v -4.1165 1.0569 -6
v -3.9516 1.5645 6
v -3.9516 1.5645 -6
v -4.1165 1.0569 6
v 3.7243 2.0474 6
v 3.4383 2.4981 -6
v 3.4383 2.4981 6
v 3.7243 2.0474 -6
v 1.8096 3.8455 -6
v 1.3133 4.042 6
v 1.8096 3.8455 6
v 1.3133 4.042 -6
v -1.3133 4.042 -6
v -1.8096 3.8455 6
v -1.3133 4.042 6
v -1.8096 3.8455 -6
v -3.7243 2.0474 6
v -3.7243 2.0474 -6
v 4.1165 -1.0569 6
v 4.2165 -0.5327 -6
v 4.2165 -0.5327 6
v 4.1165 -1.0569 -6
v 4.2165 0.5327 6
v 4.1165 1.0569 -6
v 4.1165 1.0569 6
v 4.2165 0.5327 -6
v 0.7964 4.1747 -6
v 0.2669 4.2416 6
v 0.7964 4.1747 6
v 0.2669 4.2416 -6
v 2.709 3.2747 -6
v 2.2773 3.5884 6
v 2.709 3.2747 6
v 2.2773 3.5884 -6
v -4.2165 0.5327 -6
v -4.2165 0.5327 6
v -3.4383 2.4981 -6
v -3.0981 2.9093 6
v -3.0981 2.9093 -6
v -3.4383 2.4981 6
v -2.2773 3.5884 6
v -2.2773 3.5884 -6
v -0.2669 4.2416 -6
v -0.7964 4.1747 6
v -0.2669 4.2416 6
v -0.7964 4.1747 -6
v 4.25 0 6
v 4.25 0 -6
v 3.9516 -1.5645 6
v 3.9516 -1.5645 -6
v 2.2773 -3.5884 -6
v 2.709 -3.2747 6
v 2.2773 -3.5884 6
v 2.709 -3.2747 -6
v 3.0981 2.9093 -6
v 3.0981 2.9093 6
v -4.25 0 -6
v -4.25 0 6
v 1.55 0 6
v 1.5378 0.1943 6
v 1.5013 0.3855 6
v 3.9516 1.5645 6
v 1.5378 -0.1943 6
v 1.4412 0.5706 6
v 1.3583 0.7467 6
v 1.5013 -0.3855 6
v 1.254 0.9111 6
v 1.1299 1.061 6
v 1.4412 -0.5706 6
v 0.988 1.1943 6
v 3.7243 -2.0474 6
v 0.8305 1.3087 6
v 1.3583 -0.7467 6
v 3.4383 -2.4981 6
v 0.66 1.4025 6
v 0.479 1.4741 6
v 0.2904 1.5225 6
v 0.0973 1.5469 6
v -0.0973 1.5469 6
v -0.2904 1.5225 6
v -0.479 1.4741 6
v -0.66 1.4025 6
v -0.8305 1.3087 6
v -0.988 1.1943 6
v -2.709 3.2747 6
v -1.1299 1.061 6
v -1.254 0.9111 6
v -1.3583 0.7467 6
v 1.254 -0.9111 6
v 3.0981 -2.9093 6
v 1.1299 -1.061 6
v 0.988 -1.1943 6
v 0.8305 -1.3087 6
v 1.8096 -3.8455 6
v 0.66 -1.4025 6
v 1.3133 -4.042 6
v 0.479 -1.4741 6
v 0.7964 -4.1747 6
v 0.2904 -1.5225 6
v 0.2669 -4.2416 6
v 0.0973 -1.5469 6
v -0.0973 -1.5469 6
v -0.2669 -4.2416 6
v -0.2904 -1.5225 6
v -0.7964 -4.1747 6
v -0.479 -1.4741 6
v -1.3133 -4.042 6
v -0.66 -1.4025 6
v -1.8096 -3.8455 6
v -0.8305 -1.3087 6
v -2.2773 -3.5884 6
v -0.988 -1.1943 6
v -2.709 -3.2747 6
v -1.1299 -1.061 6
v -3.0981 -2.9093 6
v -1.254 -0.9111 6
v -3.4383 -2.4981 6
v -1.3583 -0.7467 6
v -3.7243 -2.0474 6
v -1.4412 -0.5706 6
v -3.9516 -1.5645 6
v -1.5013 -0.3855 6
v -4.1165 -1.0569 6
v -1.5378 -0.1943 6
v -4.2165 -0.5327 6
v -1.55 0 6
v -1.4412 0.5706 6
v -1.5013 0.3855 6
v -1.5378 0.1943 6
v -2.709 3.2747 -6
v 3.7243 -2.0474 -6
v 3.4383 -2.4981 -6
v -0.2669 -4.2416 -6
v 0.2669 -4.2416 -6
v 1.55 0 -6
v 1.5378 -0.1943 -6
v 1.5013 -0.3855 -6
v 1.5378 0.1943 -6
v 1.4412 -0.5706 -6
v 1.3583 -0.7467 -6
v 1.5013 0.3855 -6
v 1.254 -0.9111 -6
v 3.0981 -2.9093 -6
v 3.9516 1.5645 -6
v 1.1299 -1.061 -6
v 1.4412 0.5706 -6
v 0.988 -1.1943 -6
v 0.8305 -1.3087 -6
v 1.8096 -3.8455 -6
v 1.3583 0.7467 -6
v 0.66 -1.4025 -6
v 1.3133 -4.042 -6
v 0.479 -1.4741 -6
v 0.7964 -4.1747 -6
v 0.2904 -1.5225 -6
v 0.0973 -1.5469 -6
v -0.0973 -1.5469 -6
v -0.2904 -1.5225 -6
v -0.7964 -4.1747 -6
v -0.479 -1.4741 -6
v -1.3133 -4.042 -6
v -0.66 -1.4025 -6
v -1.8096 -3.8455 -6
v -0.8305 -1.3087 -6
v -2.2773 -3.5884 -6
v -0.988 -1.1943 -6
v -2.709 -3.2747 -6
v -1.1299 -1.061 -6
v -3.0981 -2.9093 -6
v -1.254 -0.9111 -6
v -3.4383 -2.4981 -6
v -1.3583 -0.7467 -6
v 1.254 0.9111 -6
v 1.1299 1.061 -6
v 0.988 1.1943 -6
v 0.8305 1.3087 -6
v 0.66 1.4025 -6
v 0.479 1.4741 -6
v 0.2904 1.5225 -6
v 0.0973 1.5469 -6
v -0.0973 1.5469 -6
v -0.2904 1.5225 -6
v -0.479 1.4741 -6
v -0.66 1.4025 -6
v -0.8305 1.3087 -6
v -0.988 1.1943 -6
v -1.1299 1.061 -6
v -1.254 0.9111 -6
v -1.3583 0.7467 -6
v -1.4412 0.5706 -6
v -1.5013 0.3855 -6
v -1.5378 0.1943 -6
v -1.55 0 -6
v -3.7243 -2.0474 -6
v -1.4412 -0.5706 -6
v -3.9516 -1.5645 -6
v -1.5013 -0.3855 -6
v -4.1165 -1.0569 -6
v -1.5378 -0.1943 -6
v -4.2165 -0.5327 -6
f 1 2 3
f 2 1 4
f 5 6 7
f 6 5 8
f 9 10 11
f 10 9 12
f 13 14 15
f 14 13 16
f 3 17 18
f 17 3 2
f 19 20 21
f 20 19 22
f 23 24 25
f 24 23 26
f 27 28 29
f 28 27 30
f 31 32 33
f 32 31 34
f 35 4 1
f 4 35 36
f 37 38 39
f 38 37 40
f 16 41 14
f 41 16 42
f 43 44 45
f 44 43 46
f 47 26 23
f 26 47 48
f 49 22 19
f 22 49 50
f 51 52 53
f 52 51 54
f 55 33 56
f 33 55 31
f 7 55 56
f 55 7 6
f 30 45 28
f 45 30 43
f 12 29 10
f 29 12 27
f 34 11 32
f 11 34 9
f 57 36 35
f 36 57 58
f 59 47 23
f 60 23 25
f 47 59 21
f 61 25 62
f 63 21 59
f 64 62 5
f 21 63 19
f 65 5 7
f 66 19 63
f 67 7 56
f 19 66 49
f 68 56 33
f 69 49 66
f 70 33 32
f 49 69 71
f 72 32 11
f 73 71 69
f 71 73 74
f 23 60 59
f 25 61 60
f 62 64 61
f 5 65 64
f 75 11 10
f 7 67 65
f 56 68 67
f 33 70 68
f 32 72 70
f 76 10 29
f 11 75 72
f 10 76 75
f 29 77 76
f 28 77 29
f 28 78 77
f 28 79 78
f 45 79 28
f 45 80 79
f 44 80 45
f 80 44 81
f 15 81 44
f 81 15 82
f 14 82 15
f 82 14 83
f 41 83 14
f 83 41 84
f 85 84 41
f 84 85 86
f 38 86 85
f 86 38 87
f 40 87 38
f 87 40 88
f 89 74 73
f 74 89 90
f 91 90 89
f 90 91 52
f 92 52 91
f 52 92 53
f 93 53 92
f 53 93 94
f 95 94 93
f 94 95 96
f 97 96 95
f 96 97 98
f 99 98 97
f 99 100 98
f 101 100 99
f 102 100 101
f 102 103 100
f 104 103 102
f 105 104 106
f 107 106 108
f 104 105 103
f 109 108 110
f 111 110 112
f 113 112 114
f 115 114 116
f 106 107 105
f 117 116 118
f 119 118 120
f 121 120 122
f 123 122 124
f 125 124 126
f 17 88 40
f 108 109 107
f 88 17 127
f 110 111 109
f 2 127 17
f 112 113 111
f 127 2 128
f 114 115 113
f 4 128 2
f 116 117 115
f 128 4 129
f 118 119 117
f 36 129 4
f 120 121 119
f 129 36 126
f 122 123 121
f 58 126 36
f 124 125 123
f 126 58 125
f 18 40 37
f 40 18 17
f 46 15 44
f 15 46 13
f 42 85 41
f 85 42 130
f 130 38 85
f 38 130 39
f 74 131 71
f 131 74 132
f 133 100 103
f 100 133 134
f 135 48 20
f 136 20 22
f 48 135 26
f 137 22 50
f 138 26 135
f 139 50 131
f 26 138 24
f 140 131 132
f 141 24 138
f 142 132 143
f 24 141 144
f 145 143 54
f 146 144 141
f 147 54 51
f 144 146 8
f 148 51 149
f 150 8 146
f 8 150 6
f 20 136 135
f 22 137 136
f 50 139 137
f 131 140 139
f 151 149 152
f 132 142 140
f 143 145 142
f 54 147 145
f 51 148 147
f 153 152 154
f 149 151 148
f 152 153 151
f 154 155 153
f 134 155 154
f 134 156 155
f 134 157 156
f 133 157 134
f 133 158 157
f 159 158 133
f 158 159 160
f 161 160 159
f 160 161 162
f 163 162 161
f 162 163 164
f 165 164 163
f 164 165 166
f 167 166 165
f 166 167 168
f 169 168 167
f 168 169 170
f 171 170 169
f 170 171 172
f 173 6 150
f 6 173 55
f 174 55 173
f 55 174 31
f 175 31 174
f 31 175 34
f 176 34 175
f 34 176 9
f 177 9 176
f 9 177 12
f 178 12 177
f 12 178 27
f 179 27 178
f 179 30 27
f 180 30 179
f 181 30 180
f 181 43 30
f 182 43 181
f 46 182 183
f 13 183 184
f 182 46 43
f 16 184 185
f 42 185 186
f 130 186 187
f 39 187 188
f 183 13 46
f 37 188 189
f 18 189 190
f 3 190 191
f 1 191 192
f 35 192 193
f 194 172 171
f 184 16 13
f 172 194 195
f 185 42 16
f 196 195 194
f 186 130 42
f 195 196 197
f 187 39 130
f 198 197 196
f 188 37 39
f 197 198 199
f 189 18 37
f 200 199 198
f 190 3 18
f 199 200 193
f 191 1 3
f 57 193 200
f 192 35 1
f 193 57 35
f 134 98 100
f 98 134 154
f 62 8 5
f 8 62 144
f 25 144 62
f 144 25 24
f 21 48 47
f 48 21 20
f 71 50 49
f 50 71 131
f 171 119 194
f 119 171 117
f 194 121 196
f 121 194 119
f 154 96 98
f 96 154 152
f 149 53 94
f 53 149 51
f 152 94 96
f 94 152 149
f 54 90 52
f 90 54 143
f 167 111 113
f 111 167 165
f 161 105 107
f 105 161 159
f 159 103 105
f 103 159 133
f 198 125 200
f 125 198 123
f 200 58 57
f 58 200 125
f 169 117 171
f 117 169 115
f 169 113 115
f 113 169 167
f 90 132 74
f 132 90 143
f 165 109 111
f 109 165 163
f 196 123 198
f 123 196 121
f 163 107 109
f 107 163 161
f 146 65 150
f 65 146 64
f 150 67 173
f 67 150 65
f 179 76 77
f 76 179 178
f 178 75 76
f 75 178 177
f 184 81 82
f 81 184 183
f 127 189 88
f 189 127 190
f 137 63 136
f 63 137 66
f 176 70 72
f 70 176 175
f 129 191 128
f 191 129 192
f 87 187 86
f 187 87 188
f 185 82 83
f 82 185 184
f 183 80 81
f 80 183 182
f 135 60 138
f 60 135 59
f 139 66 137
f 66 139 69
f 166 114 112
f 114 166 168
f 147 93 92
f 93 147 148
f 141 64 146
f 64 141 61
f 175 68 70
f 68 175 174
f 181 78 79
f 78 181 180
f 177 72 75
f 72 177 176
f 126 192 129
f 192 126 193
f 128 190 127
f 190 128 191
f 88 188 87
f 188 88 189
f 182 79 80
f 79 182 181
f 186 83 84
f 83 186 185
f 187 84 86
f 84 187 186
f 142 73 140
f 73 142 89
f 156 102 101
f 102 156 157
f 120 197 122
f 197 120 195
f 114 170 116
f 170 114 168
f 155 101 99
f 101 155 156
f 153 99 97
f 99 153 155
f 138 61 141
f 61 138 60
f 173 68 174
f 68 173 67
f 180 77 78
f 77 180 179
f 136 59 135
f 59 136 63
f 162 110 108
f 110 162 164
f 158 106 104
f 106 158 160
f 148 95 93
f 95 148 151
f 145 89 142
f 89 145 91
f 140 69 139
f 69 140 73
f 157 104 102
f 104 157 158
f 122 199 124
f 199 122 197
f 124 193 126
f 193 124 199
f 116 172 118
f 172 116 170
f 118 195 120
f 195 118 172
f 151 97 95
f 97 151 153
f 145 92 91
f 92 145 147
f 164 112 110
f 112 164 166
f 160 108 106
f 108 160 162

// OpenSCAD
$fn = 50;


difference() {
	union() {
		translate(v = [0, 0, -6.0000000000]) {
			cylinder(h = 12, r = 4.2500000000);
		}
	}
	union() {
		translate(v = [0, 0, -100.0000000000]) {
			cylinder(h = 200, r = 1.5500000000);
		}
	}
}
